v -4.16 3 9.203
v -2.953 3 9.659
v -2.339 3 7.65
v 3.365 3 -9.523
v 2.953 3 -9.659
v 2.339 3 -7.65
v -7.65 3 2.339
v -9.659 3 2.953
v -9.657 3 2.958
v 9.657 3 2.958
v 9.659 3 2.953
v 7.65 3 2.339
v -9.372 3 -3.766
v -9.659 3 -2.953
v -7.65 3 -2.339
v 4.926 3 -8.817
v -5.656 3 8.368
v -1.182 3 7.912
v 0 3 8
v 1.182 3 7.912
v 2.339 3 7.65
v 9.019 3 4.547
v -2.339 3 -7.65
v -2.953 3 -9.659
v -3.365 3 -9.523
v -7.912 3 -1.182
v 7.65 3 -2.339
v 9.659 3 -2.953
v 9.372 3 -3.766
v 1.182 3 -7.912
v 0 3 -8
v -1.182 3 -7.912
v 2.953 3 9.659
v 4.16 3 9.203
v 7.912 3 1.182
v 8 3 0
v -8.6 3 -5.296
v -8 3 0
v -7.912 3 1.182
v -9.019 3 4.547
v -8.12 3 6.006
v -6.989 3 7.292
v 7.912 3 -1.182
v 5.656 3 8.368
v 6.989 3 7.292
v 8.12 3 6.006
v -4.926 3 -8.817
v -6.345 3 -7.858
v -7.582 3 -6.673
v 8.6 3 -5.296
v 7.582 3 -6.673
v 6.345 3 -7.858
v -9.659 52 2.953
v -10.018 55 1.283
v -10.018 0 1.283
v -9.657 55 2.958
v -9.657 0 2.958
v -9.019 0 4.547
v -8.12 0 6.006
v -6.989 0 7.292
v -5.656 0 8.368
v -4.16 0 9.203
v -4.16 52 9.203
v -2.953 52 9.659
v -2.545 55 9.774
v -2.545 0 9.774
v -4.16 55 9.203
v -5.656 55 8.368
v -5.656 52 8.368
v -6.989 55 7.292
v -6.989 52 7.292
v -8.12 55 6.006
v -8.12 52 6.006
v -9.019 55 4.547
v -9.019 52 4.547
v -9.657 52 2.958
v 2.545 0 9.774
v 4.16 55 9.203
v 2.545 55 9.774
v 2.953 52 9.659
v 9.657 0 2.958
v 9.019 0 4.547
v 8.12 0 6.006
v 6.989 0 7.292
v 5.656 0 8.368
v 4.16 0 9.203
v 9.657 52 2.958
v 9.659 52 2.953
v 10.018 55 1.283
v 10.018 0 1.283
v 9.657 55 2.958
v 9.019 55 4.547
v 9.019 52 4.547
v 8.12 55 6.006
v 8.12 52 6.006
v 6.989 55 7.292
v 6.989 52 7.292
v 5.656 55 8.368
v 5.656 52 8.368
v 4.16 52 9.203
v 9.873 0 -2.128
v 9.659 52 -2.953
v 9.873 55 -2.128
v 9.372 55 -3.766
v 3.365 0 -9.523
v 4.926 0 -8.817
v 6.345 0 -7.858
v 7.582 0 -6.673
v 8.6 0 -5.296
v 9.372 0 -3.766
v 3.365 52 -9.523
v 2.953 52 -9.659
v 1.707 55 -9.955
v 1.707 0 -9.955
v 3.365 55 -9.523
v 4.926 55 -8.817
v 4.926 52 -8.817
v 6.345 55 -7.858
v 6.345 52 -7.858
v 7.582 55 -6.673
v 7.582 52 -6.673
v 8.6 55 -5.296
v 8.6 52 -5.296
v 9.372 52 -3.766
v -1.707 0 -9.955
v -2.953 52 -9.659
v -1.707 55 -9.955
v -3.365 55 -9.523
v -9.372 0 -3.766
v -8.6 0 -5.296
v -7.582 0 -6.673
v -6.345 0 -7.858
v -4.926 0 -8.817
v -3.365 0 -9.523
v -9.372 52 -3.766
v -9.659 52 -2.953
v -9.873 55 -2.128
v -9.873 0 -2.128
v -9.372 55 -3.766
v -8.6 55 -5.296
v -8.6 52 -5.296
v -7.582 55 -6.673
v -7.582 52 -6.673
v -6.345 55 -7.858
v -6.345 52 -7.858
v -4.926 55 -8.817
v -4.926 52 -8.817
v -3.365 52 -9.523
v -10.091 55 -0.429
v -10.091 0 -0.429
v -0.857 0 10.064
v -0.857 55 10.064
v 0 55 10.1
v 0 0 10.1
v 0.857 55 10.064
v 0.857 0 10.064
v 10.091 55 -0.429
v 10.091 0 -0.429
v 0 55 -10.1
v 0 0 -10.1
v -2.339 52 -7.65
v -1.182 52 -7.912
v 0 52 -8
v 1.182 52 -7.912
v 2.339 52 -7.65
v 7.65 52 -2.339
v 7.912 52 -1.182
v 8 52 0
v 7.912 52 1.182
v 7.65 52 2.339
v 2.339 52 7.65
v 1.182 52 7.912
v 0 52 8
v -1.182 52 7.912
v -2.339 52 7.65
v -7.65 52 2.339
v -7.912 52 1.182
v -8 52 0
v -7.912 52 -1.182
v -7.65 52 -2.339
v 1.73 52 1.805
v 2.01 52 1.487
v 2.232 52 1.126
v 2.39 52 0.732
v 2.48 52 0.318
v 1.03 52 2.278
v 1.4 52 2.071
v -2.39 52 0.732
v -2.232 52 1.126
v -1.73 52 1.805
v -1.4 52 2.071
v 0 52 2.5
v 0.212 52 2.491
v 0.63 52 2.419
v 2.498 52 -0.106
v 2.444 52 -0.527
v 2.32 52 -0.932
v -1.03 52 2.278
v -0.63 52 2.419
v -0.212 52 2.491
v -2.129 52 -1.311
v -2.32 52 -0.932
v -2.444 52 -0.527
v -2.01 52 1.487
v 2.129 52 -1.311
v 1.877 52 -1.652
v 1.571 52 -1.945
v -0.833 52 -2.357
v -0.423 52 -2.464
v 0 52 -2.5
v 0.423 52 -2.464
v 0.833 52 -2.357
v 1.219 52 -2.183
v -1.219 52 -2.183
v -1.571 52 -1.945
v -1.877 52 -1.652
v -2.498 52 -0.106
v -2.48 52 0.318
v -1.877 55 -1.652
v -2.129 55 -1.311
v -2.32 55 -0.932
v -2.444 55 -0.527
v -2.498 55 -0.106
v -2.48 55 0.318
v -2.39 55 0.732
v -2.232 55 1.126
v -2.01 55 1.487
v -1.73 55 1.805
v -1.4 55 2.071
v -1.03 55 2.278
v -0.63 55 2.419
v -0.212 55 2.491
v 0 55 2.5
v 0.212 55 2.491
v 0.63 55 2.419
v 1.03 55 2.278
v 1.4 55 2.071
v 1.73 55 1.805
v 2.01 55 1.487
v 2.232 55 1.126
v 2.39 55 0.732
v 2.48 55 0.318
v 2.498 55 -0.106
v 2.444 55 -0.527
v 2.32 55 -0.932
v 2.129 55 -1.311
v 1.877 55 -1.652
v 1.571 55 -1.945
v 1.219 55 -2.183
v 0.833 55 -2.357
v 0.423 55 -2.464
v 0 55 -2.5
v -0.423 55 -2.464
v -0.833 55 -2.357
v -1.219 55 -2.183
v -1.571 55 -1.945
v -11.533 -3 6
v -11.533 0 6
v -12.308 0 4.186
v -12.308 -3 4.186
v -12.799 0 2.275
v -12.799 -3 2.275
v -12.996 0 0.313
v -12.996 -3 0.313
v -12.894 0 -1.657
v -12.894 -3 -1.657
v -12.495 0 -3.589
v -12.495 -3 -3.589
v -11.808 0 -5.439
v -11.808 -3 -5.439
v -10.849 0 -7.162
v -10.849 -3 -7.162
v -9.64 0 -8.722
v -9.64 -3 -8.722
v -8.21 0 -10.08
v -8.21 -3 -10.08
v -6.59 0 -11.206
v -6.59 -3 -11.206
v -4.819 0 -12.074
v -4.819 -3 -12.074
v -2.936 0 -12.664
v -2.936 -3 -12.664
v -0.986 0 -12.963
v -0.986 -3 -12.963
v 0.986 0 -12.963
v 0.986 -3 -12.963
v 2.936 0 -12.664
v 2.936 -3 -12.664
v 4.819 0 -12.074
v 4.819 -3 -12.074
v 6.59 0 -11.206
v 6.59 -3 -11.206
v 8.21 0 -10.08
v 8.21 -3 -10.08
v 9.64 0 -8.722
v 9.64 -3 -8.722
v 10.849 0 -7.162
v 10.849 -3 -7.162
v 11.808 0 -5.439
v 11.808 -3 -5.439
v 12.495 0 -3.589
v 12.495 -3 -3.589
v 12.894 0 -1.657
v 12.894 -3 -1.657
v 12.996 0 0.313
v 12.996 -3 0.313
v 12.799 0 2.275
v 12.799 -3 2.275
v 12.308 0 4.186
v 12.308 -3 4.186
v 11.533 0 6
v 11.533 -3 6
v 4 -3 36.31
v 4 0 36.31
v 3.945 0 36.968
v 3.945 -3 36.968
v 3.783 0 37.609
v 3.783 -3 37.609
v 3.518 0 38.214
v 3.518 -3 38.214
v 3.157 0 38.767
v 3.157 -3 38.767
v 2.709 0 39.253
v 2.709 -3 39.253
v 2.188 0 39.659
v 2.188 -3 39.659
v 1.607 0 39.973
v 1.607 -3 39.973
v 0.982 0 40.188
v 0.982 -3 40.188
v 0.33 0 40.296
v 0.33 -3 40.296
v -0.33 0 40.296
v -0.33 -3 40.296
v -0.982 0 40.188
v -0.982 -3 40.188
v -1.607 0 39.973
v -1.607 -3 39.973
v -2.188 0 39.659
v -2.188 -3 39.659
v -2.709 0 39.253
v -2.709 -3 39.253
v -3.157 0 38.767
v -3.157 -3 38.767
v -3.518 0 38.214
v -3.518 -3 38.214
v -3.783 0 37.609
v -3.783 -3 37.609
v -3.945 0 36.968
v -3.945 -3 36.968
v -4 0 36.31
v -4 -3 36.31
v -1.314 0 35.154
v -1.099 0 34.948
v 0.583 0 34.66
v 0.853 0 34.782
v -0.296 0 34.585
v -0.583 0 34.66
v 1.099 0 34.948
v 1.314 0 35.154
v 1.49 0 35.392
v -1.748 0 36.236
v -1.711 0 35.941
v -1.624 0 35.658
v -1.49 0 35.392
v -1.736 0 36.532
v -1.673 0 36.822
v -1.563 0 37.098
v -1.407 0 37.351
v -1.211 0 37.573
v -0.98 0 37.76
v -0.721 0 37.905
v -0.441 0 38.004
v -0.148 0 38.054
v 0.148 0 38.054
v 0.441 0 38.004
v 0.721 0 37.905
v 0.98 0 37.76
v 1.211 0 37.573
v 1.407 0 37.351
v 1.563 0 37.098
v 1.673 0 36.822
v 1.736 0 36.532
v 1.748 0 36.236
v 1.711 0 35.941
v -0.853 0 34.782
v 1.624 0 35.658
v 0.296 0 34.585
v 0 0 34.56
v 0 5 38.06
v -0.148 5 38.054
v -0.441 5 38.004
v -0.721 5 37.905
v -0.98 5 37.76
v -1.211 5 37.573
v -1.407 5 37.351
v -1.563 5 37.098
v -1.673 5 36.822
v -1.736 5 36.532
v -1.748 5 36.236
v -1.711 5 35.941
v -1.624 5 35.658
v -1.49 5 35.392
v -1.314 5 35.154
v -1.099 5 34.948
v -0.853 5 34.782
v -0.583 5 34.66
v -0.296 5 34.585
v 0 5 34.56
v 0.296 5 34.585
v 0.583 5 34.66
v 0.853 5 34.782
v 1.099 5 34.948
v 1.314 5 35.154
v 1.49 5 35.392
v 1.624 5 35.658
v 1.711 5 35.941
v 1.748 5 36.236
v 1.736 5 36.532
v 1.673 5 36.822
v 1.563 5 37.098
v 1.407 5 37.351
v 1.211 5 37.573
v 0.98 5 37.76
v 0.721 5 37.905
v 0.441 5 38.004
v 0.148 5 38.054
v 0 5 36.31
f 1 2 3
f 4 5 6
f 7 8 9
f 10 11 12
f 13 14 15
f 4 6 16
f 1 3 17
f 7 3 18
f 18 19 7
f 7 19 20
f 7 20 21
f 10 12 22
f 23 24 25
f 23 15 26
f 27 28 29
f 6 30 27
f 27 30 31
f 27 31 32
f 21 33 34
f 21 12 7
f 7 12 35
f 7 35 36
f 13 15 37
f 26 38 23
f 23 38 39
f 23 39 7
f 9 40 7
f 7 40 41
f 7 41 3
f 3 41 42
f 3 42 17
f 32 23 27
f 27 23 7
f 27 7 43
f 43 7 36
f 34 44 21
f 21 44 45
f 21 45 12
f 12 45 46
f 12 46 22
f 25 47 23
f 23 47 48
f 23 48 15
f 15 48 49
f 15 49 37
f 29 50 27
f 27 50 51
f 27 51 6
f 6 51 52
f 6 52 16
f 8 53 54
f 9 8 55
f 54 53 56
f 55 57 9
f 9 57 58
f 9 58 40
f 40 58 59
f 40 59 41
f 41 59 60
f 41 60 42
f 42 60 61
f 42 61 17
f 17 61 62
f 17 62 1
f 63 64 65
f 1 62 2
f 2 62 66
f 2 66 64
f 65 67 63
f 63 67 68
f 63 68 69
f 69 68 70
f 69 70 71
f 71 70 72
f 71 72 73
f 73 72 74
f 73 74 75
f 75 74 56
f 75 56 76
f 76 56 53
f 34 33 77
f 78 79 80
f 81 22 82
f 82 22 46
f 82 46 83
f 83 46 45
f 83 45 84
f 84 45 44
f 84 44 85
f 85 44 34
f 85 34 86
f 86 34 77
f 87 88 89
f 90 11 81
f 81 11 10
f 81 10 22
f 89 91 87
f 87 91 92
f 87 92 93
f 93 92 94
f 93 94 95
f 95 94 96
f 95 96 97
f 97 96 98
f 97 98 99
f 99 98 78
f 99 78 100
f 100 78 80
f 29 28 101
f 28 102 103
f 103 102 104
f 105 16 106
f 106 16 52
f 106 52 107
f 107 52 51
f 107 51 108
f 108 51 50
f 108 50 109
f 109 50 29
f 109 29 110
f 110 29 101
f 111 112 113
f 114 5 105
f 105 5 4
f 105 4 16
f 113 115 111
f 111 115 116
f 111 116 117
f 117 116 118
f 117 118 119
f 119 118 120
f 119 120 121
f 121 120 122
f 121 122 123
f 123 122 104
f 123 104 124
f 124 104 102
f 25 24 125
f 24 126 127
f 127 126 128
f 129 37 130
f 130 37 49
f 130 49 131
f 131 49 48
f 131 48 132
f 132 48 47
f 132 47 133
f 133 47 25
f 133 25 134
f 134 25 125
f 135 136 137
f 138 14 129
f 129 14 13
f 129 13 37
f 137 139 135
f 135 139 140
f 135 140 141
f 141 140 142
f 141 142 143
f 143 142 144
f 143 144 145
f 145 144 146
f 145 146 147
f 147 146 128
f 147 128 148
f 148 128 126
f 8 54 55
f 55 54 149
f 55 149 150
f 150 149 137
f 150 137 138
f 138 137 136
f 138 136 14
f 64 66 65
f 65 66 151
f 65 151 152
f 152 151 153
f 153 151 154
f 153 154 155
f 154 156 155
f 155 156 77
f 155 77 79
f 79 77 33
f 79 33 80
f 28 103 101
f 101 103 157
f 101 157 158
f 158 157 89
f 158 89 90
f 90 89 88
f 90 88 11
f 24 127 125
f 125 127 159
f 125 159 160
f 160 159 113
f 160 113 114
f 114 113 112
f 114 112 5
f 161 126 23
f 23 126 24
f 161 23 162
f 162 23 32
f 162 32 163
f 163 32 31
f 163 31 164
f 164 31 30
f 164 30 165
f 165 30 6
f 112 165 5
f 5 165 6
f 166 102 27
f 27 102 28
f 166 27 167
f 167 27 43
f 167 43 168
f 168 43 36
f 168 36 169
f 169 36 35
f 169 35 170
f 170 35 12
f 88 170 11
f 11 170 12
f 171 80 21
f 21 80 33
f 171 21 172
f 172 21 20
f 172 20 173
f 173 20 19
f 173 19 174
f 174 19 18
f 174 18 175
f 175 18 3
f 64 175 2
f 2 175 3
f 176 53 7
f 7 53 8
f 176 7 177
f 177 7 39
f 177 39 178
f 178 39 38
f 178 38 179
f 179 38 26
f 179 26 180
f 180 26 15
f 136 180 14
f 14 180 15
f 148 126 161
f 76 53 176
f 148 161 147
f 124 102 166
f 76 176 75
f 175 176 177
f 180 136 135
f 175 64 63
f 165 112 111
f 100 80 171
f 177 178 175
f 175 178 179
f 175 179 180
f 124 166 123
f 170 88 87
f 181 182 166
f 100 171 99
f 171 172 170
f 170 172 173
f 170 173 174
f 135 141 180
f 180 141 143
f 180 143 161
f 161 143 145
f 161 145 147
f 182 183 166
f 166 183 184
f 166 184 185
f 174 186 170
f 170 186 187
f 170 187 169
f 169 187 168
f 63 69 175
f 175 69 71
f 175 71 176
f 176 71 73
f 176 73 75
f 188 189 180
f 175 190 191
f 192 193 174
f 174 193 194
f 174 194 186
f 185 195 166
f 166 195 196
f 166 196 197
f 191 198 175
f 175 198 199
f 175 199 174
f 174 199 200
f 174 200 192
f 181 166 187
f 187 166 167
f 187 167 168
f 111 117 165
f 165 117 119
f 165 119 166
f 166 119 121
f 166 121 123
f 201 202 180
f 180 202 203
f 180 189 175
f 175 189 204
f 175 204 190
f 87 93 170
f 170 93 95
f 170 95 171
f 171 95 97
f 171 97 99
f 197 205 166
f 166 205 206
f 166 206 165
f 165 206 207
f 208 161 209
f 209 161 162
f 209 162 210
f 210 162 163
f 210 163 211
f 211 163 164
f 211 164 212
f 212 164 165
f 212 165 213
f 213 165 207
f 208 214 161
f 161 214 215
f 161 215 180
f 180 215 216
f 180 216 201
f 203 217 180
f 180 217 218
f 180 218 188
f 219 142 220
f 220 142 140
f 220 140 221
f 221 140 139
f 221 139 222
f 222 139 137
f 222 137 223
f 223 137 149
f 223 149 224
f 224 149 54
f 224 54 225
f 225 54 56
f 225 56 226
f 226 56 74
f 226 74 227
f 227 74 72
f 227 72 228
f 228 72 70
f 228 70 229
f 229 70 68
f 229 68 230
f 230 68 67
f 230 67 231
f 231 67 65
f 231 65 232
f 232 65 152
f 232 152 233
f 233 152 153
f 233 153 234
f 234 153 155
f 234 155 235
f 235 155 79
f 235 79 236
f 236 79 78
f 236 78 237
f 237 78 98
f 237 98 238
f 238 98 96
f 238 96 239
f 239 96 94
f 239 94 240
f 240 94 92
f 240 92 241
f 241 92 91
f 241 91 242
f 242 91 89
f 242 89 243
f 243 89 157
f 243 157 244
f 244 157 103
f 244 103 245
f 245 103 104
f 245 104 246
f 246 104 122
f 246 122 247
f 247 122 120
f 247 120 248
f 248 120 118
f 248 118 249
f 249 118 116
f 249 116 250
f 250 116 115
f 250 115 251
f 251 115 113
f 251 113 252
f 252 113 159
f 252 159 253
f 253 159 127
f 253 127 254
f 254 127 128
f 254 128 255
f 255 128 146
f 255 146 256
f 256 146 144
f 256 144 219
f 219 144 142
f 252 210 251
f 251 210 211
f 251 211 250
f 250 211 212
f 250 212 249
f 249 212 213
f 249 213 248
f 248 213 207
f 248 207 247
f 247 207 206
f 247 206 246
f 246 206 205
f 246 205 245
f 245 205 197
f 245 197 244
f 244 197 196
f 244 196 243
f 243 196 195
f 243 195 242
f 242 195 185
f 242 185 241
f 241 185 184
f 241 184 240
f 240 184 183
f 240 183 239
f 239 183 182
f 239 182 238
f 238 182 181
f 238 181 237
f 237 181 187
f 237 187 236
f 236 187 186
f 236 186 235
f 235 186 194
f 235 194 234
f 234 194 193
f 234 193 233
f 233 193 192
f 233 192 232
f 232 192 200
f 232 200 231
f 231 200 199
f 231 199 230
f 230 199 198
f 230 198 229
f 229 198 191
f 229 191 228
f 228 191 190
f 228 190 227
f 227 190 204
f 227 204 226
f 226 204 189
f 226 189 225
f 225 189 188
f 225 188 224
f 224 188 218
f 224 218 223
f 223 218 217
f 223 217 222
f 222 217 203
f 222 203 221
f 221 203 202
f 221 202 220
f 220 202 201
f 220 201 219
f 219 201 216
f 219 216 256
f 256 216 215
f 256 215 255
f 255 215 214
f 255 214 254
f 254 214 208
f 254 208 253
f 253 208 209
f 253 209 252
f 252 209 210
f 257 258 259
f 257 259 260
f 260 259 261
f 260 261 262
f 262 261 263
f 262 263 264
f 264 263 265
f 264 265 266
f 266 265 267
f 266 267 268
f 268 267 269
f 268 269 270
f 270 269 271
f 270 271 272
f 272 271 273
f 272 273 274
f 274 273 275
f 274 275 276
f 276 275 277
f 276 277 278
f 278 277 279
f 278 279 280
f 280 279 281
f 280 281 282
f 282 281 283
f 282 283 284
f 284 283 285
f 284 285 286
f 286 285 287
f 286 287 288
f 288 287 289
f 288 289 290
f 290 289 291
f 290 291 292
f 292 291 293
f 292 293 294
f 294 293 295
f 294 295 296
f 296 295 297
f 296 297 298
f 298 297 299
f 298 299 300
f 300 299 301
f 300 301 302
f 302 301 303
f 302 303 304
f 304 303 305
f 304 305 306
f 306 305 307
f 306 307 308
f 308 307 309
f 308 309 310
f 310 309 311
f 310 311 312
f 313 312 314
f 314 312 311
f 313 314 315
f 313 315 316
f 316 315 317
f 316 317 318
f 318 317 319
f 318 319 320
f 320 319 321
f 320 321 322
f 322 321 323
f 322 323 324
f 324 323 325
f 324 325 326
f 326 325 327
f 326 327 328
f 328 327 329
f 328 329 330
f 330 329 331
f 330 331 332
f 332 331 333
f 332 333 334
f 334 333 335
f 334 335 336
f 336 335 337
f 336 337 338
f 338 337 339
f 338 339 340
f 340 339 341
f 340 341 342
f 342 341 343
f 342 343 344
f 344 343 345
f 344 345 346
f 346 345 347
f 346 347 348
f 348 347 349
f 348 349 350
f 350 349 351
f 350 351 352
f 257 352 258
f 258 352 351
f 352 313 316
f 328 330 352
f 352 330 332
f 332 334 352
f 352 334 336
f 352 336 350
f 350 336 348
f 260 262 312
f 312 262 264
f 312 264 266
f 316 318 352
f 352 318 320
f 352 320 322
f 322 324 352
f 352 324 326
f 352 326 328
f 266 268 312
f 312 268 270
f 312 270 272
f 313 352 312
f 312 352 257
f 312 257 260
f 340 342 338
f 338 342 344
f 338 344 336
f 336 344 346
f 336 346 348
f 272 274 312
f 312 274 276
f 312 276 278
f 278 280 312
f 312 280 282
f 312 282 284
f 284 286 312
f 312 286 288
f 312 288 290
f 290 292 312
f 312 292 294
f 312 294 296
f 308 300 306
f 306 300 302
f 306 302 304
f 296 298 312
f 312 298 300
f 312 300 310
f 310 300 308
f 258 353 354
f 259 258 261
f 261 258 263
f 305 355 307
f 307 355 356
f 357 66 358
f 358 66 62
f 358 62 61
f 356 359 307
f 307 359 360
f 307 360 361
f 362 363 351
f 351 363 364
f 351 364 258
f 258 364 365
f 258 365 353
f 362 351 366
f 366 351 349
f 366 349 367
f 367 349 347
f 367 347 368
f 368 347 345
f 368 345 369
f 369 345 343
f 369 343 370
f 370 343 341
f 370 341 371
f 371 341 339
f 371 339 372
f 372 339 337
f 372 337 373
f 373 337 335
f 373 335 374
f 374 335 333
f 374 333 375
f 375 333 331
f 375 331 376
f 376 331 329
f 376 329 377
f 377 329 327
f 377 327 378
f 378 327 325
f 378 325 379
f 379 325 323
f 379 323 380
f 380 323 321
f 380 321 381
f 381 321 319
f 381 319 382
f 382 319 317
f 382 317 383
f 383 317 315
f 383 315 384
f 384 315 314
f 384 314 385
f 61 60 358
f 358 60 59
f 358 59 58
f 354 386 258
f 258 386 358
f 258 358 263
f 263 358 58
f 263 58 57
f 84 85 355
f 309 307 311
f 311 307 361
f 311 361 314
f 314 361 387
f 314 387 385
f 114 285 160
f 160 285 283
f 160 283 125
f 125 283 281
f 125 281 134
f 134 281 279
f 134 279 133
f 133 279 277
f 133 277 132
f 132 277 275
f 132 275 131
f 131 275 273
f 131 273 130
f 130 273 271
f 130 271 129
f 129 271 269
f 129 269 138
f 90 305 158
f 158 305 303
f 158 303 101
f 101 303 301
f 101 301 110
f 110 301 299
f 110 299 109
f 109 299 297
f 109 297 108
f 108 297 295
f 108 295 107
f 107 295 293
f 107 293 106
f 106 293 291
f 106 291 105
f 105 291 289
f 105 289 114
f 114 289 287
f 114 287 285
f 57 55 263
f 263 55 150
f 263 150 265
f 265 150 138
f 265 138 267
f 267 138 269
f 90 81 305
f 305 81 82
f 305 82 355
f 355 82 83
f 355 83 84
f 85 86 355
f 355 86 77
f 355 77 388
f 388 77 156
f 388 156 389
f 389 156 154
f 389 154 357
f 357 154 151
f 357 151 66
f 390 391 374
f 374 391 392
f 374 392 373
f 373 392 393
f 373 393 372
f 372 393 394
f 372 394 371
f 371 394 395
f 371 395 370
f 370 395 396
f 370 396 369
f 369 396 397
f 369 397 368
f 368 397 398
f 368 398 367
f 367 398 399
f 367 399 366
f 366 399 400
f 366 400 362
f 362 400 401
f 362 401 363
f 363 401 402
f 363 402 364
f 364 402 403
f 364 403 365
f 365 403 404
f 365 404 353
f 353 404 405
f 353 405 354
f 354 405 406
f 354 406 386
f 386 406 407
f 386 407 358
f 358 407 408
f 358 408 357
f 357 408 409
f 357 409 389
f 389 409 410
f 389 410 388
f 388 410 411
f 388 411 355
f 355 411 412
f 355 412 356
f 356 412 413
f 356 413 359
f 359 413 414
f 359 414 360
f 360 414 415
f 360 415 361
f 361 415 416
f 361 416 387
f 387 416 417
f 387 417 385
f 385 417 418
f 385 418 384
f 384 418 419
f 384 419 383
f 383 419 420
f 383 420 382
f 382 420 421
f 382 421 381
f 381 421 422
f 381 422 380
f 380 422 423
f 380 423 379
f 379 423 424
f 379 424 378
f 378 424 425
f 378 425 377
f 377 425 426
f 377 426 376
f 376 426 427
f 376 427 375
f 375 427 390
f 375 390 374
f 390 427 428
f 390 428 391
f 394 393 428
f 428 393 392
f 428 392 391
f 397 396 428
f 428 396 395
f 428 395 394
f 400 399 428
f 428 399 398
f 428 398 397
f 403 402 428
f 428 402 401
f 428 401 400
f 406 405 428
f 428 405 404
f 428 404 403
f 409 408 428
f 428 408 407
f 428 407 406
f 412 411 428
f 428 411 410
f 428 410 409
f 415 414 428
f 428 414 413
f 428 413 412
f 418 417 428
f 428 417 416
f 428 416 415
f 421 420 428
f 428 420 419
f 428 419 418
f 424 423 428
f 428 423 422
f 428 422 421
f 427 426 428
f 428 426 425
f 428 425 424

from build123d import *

# Parameters (mm, degrees)
SKETCH1_R           = 10.1
BOSS_EXTRUDE1_DEPTH = 3
BOSS_EXTRUDE2_DEPTH = 49
SKETCH3_R           = 10.1
SKETCH3_R_2         = 2.5
BOSS_EXTRUDE3_DEPTH = 3
BOSS_EXTRUDE6_DEPTH = 3
SKETCH5_R           = 1.75
BOSS_EXTRUDE7_DEPTH = 5


with BuildPart() as part:
    # Sketch1 → Boss-Extrude1 (new body)
    with BuildSketch(Plane(origin=(0, 0, 0), x_dir=(1, 0, 0), z_dir=(0, 1, 0))):
        with Locations(Location((0, 0, 0), (0, 0, 270))):
            Circle(SKETCH1_R)
    extrude(amount=BOSS_EXTRUDE1_DEPTH)

    # Sketch2 → Boss-Extrude2 (add)
    with BuildSketch(Plane(origin=(0, 3, 0), x_dir=(1, 0, 0), z_dir=(0, 1, 0))):
        with BuildLine():
            Line((-2.952954218, 9.658678035), (-2.338973638, 7.650438048))
            ThreePointArc((-2.338973638, 7.650438048), (0, 8), (2.338973638, 7.650438048))
            Line((2.338973638, 7.650438048), (2.952954218, 9.658678035))
            ThreePointArc((2.952954218, 9.658678035), (0, 10.1), (-2.952954218, 9.658678035))
        make_face()
        with BuildLine():
            Line((9.658678035, 2.952954218), (7.650438048, 2.338973638))
            ThreePointArc((7.650438048, 2.338973638), (8, 0), (7.650438048, -2.338973638))
            Line((7.650438048, -2.338973638), (9.658678035, -2.952954218))
            ThreePointArc((9.658678035, -2.952954218), (10.1, 0), (9.658678035, 2.952954218))
        make_face()
        with BuildLine():
            Line((2.952954218, -9.658678035), (2.338973638, -7.650438048))
            ThreePointArc((2.338973638, -7.650438048), (0, -8), (-2.338973638, -7.650438048))
            Line((-2.338973638, -7.650438048), (-2.952954218, -9.658678035))
            ThreePointArc((-2.952954218, -9.658678035), (0, -10.1), (2.952954218, -9.658678035))
        make_face()
        with BuildLine():
            Line((-9.658678035, -2.952954218), (-7.650438048, -2.338973638))
            ThreePointArc((-7.650438048, -2.338973638), (-8, 0), (-7.650438048, 2.338973638))
            Line((-7.650438048, 2.338973638), (-9.658678035, 2.952954218))
            ThreePointArc((-9.658678035, 2.952954218), (-10.1, 0), (-9.658678035, -2.952954218))
        make_face()
    extrude(amount=BOSS_EXTRUDE2_DEPTH)

    # Sketch3 → Boss-Extrude3 (add)
    with BuildSketch(Plane(origin=(0, 52, 0), x_dir=(1, 0, 0), z_dir=(0, 1, 0))):
        with Locations(Location((0, 0, 0), (0, 0, 270))):
            Circle(SKETCH3_R)
        with Locations(Location((0, 0, 0), (0, 0, 270))):
            Circle(SKETCH3_R_2, mode=Mode.SUBTRACT)
    extrude(amount=BOSS_EXTRUDE3_DEPTH)

    # Sketch4 → Boss-Extrude6 (add)
    with BuildSketch(Plane.XZ):
        with BuildLine():
            Line((-11.532649592, 5.999832781), (-4, 36.31))
            ThreePointArc((-4, 36.31), (0, 40.31), (4, 36.31))
            Line((4, 36.31), (11.532649592, 5.999832781))
            ThreePointArc((11.532649592, 5.999832781), (0, -13), (-11.532649592, 5.999832781))
        make_face()
    extrude(amount=BOSS_EXTRUDE6_DEPTH)

    # Sketch5 → Boss-Extrude7 (add)
    with BuildSketch(Plane(origin=(0, 0, 0), x_dir=(1, 0, 0), z_dir=(0, 1, 0))):
        with Locations(Location((0, -36.31, 0), (0, 0, 90))):
            Circle(SKETCH5_R)
    extrude(amount=BOSS_EXTRUDE7_DEPTH)


solid = part.part
